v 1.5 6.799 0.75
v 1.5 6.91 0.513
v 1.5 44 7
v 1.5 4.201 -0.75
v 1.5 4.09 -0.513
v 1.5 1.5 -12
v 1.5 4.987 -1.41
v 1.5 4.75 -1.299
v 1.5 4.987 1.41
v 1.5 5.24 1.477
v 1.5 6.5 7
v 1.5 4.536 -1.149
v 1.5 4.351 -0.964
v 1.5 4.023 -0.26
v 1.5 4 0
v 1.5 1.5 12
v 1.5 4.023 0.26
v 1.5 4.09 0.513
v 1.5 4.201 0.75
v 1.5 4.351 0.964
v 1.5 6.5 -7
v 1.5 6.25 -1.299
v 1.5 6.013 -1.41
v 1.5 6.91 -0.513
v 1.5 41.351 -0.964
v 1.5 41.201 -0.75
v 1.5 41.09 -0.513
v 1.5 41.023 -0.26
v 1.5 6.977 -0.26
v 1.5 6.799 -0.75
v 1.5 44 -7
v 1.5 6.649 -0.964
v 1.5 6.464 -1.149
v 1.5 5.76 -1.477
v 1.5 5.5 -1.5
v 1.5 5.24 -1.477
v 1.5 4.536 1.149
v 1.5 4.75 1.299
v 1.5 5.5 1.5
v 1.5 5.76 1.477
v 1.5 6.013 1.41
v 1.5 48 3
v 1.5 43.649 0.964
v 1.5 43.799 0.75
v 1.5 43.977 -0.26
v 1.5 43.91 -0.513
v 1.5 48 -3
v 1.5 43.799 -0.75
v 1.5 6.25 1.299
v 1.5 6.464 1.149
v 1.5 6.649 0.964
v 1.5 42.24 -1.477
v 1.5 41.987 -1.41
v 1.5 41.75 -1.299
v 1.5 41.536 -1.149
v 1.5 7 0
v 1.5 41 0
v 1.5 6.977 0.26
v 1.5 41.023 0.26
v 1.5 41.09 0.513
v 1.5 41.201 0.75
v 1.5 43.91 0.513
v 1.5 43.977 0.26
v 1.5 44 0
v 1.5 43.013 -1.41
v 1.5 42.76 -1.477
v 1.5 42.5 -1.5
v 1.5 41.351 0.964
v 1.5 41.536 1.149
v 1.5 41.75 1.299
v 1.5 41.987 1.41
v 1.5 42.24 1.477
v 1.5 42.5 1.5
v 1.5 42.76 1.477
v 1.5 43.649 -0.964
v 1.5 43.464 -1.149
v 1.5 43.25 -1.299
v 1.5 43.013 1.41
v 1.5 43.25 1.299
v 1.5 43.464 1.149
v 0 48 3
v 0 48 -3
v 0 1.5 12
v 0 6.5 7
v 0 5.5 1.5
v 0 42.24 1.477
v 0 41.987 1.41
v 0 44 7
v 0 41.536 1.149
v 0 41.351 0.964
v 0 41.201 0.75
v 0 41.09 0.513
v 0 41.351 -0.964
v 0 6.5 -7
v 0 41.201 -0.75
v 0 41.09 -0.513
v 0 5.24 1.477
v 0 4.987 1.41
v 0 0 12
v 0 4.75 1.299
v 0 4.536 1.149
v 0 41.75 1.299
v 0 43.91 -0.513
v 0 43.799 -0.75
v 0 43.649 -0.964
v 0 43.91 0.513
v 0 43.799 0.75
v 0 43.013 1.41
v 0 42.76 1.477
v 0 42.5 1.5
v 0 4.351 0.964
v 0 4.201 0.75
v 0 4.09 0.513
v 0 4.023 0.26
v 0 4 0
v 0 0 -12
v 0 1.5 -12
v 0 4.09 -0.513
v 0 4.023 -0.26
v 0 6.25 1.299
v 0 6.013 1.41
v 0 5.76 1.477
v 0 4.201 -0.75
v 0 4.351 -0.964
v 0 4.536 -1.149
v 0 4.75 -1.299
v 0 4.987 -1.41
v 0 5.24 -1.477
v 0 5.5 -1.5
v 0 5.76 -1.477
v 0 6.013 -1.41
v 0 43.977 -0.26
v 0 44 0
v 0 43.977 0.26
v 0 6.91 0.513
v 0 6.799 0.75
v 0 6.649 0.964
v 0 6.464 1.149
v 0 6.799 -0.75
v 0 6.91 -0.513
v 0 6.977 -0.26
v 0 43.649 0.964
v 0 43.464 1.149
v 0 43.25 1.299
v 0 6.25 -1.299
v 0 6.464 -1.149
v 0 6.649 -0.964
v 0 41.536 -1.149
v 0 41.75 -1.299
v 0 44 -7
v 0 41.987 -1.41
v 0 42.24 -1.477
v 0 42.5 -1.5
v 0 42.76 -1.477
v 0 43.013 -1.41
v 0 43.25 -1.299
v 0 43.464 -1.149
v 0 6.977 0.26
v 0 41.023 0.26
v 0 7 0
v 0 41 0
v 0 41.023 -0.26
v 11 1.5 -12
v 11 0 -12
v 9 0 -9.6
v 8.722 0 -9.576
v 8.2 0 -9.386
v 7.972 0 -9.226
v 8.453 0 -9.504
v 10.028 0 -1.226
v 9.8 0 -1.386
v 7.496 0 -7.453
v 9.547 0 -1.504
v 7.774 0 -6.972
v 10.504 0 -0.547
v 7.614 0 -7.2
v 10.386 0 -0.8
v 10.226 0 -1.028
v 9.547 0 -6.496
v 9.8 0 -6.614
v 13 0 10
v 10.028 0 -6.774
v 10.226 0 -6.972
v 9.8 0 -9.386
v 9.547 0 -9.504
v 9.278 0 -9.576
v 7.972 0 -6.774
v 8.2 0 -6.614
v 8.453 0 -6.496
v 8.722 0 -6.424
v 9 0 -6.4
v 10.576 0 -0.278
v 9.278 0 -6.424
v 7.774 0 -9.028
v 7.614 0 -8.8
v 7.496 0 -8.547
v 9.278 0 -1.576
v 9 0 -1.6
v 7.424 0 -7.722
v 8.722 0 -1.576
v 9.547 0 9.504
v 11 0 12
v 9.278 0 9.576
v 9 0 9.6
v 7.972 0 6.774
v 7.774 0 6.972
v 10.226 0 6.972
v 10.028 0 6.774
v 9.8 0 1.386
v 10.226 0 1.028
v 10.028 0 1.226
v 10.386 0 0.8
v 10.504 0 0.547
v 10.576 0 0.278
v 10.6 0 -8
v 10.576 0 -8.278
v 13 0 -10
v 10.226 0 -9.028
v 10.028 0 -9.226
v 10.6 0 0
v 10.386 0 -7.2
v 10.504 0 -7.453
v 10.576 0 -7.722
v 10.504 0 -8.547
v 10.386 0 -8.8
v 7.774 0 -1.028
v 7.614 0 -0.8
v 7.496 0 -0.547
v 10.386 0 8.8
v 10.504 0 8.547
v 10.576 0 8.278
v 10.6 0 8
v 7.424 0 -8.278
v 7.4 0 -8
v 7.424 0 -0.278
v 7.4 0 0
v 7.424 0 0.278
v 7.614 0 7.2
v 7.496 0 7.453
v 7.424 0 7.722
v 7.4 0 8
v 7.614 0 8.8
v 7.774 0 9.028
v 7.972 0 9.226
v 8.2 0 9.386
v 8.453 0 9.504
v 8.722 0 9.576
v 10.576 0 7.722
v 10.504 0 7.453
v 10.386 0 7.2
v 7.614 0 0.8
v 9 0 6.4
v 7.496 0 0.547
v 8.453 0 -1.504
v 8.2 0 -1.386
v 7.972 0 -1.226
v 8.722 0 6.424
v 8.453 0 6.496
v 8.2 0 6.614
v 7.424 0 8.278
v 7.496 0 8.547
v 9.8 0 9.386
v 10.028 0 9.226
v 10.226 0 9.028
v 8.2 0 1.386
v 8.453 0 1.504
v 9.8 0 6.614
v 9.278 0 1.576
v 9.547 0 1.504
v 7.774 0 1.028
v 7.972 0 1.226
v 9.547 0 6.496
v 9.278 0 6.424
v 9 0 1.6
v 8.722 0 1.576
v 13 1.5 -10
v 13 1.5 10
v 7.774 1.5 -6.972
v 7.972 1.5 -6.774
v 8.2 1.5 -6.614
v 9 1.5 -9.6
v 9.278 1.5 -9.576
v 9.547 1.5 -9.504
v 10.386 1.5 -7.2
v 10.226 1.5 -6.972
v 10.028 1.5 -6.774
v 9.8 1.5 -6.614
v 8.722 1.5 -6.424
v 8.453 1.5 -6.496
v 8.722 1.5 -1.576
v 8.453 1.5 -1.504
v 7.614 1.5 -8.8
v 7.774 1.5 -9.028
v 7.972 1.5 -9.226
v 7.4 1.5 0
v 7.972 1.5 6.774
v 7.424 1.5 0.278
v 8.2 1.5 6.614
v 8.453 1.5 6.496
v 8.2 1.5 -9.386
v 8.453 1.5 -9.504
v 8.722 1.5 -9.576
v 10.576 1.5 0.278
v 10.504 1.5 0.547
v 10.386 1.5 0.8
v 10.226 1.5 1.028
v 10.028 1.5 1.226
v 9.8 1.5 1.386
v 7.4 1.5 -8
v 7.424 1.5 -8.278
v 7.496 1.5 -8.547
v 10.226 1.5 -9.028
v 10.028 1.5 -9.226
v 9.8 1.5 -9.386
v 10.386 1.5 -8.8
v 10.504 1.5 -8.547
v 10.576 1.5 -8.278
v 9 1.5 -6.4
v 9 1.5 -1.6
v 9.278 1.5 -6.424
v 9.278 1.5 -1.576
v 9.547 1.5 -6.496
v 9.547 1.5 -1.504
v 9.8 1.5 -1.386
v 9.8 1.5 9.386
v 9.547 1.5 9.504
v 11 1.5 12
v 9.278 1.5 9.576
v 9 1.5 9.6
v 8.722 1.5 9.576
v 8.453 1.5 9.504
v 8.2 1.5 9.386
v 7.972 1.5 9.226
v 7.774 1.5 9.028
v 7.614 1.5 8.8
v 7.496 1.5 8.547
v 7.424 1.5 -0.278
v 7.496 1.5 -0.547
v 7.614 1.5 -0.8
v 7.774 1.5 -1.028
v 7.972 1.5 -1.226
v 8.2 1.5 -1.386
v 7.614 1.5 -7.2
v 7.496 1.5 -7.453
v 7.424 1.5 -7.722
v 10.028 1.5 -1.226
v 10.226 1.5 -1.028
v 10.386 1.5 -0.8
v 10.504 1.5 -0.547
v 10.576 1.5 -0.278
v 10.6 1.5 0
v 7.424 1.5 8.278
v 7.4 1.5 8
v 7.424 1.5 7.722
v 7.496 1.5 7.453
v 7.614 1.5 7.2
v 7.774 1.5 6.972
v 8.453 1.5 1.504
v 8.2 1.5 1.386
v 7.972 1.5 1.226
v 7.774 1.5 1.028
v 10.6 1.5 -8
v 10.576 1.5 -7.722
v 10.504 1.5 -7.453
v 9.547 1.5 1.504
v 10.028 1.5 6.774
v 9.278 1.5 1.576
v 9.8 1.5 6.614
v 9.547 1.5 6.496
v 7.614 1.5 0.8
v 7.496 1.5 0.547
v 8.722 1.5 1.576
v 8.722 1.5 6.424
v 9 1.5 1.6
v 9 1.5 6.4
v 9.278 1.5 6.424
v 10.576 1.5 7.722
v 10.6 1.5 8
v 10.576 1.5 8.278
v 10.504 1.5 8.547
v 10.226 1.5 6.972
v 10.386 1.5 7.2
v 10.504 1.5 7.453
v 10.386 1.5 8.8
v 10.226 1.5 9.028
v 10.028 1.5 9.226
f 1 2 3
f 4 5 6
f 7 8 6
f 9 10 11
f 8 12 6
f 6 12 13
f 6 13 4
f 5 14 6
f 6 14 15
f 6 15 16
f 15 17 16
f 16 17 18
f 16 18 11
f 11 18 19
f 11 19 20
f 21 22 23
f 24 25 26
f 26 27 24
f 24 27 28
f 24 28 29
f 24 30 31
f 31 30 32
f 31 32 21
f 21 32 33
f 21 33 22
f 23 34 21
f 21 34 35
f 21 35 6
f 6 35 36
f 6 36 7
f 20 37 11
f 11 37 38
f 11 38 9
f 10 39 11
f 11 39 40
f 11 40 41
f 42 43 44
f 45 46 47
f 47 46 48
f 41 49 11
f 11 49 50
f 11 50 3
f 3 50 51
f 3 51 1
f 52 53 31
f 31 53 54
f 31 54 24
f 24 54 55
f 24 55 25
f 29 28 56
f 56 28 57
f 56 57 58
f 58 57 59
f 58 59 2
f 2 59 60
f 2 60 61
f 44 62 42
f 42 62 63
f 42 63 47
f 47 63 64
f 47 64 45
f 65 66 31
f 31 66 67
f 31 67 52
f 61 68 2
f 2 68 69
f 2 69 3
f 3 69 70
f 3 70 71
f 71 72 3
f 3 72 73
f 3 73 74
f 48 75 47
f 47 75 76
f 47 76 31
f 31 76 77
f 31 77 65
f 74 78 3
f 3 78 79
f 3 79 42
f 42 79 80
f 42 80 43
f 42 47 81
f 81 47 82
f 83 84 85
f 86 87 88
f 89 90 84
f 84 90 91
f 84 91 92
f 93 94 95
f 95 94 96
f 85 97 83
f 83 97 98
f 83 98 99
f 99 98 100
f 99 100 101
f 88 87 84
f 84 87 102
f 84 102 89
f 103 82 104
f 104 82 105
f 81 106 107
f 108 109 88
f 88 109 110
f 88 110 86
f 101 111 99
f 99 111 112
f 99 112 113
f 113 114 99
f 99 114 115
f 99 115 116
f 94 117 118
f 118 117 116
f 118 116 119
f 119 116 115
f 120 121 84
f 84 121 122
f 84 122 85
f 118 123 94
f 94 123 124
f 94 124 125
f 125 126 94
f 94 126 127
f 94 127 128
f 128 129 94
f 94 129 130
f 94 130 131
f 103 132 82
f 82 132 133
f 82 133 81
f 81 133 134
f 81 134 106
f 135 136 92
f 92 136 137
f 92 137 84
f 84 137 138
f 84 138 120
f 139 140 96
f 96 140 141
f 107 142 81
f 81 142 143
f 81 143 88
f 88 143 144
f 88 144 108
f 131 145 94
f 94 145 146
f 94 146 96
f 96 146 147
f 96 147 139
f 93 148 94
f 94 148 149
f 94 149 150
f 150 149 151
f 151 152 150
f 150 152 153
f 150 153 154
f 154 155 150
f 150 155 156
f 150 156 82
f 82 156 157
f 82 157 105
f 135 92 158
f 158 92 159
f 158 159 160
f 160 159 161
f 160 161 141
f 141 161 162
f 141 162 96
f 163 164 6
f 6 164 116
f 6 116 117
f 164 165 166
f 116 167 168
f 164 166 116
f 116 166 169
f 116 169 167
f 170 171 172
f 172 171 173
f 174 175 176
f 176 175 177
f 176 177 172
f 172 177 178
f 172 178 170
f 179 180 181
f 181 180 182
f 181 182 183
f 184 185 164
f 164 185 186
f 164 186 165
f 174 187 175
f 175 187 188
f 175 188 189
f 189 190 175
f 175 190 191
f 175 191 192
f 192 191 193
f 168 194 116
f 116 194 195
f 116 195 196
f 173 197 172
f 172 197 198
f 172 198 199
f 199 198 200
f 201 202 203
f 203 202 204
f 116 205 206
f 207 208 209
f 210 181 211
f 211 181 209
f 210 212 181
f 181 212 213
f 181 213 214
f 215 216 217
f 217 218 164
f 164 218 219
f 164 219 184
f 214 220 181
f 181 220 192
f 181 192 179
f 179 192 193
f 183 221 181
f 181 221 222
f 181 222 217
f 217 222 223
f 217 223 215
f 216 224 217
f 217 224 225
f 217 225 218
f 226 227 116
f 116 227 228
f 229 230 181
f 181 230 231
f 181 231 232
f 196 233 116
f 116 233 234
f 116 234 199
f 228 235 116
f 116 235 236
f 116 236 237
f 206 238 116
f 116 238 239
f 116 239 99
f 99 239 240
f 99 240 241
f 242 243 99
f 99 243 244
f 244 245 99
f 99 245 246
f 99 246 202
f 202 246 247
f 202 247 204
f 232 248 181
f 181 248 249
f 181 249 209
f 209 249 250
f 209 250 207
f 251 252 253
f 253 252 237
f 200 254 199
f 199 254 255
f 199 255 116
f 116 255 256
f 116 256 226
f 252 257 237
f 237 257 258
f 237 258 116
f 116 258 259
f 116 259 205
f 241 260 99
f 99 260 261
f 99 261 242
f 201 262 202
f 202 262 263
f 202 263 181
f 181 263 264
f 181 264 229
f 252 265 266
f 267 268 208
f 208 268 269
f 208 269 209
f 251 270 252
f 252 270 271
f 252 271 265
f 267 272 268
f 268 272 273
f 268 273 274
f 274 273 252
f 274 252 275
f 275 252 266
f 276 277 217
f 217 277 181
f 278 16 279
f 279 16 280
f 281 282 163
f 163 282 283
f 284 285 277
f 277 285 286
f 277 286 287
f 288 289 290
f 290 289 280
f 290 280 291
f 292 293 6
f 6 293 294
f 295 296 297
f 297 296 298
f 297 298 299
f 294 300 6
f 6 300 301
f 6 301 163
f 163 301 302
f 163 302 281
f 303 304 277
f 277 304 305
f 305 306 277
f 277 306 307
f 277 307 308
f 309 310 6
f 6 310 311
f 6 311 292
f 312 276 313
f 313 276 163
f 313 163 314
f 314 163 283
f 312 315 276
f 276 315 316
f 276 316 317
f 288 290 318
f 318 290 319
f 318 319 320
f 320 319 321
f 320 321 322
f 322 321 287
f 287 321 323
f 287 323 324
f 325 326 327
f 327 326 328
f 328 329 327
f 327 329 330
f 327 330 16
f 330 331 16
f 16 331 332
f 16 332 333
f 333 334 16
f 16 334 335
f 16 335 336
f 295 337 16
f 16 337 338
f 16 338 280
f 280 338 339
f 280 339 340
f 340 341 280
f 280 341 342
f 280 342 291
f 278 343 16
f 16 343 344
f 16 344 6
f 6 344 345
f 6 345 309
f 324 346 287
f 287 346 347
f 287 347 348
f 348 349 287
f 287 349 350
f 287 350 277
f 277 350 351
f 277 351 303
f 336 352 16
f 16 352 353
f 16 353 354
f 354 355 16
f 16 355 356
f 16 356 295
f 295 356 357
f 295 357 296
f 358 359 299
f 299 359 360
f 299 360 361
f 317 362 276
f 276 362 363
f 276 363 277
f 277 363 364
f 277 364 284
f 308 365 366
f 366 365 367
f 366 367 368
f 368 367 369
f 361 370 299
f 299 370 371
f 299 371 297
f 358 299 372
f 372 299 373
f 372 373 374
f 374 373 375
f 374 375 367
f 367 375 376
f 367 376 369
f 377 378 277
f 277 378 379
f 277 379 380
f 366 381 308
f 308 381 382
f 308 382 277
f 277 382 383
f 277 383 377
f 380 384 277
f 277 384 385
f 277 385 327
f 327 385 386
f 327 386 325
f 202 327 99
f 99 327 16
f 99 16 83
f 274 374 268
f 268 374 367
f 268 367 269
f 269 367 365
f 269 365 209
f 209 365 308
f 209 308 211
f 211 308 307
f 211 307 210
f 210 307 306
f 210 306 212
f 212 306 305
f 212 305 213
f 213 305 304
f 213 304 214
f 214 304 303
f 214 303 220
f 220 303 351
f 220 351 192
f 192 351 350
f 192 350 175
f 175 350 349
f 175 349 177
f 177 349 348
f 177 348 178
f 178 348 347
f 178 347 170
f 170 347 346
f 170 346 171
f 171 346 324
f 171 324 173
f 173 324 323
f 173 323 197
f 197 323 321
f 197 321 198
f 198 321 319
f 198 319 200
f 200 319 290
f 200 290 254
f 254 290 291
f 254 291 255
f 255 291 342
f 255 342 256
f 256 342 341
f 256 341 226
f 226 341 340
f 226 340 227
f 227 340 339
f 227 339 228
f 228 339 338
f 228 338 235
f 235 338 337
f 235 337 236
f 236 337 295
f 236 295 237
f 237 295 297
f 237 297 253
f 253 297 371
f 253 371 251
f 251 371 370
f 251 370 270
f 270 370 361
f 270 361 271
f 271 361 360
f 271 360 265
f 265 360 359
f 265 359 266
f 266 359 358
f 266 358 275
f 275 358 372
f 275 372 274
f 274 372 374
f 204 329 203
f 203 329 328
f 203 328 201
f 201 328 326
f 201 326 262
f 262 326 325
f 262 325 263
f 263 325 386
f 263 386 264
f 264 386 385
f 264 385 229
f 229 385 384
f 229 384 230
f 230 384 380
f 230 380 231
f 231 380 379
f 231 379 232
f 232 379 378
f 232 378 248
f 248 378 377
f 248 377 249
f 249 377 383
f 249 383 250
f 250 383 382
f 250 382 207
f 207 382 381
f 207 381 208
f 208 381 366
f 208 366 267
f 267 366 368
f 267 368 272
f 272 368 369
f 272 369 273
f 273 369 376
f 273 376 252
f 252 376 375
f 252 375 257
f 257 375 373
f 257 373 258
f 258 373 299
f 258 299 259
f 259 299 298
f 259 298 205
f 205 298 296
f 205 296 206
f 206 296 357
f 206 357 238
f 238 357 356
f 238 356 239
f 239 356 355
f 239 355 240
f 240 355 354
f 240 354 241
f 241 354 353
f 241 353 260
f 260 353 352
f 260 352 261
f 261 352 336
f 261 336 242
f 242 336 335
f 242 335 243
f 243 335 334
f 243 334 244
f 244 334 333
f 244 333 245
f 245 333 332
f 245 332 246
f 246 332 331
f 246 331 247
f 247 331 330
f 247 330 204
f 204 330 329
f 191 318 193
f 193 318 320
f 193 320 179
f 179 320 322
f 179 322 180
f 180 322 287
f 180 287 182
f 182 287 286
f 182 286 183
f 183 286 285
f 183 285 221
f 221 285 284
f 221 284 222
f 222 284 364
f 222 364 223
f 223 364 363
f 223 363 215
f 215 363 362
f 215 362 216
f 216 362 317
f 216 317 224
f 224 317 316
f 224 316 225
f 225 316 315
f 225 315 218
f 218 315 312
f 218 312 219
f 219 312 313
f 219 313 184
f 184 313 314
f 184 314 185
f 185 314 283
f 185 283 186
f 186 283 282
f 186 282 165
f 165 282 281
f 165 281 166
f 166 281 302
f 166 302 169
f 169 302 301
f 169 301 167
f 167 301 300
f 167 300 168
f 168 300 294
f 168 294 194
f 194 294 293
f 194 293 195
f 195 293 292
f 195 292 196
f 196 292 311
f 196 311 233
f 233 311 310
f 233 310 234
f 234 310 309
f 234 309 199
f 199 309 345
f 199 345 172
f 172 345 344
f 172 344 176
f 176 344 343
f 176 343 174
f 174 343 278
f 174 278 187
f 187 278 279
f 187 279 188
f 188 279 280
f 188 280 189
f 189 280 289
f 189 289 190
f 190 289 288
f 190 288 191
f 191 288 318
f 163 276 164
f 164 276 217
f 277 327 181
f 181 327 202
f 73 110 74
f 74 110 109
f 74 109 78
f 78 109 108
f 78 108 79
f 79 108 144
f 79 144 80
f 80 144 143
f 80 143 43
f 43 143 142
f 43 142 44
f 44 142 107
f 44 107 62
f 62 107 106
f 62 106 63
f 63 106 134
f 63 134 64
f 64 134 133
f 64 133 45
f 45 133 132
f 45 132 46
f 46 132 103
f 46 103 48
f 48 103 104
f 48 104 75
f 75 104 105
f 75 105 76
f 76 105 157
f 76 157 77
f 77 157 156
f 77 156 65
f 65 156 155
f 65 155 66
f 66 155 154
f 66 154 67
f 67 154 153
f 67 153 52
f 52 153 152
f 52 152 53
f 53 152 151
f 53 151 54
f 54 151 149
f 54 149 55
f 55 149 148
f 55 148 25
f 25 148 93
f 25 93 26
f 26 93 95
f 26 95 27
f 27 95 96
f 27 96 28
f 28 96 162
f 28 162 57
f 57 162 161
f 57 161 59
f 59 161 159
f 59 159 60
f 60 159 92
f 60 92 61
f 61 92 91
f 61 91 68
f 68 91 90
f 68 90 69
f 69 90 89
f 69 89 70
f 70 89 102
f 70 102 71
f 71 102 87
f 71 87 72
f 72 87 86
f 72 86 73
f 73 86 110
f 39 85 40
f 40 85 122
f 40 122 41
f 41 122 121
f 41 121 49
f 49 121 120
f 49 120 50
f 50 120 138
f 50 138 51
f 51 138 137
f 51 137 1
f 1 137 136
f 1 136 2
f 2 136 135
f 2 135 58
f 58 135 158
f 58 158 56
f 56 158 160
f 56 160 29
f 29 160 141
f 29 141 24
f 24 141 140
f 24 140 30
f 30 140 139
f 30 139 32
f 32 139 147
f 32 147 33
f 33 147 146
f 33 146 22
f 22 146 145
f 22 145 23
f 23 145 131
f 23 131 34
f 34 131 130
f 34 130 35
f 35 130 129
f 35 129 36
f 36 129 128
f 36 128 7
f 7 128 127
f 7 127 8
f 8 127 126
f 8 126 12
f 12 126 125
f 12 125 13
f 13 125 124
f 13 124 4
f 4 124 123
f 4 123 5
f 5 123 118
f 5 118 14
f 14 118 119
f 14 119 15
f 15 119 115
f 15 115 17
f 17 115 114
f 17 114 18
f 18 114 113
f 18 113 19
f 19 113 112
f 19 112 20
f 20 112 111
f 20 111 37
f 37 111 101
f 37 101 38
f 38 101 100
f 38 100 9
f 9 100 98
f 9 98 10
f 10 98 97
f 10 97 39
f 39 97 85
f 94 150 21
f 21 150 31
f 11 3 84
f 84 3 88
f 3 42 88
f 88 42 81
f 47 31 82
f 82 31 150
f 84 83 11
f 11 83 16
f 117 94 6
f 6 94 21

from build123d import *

# Parameters (mm, degrees)
EXTRUDE_1_DEPTH     = 12
SKETCH_2_R          = 1.6
CUT_EXTRUDE_1_DEPTH = 45.2
CHAMFER_1_SIZE      = 2
SKETCH_4_R          = 1.5
CUT_EXTRUDE_2_DEPTH = 52.15662225
SKETCH_6_W          = 26.1795091
SKETCH_6_H          = 41
CUT_EXTRUDE_3_DEPTH = 10
CHAMFER_2_SIZE      = 4
CHAMFER_4_SIZE      = 5


with BuildPart() as part:
    # Эскиз1 → Бобышка-Вытянуть1 (new, symmetric)
    with BuildSketch(Plane.XY):
        Polygon((0, 0), (0, 48), (1.5, 48), (1.5, 1.5), (13, 1.5), (13, 0), align=None)
    extrude(amount=EXTRUDE_1_DEPTH, both=True)

    # Эскиз2 → Вырез-Вытянуть1 (cut)
    with BuildSketch(Plane(origin=(0, 1.5, 0), x_dir=(1, 0, 0), z_dir=(0, 1, 0))):
        with Locations(Location((9, 0, 0), (0, 0, 270))):
            Circle(SKETCH_2_R)
        with Locations(Location((9, -8, 0), (0, 0, 270))):
            Circle(SKETCH_2_R)
        with Locations(Location((9, 8, 0), (0, 0, 270))):
            Circle(SKETCH_2_R)
    extrude(amount=-CUT_EXTRUDE_1_DEPTH, mode=Mode.SUBTRACT)

    # Фаска1
    chamfer_1_edges = [part.edges().sort_by_distance(p)[0] for p in [
        (13, 0.75, 12),
        (13, 0.75, -12),
    ]]
    chamfer(chamfer_1_edges, length=CHAMFER_1_SIZE)

    # Эскиз4 → Вырез-Вытянуть2 (cut, through all)
    with BuildSketch(Plane.ZY):
        with Locations((0, 42.5)):
            Circle(SKETCH_4_R)
        with Locations((0, 5.5)):
            Circle(SKETCH_4_R)
    extrude(amount=-CUT_EXTRUDE_2_DEPTH, mode=Mode.SUBTRACT)

    # Эскиз6 → Вырез-Вытянуть3 (cut)
    with BuildSketch(Plane.ZY):
        Polygon((7, 72.5), (7, 42.5), (33.1795091, 42.5), (33.38840833, 42.5), (33.38840833, 72.5), align=None)
        with Locations((20.08975455, 22)):
            Rectangle(SKETCH_6_W, SKETCH_6_H)
        with Locations((-20.08975455, 22)):
            Rectangle(SKETCH_6_W, SKETCH_6_H)
        Polygon((-33.38840833, 42.5), (-33.1795091, 42.5), (-7, 42.5), (-7, 72.5), (-33.38840833, 72.5), align=None)
    extrude(amount=-CUT_EXTRUDE_3_DEPTH, mode=Mode.SUBTRACT)

    # Фаска2
    chamfer_2_edges = [part.edges().sort_by_distance(p)[0] for p in [
        (0.75, 48, -7),
        (0.75, 48, 7),
    ]]
    chamfer(chamfer_2_edges, length=CHAMFER_2_SIZE)

    # Фаска4
    chamfer_4_edges = [part.edges().sort_by_distance(p)[0] for p in [
        (0.75, 1.5, 7),
        (0.75, 1.5, -7),
    ]]
    chamfer(chamfer_4_edges, length=CHAMFER_4_SIZE - 0.0001)  # a hair under: the kernel refuses the full size


solid = part.part
